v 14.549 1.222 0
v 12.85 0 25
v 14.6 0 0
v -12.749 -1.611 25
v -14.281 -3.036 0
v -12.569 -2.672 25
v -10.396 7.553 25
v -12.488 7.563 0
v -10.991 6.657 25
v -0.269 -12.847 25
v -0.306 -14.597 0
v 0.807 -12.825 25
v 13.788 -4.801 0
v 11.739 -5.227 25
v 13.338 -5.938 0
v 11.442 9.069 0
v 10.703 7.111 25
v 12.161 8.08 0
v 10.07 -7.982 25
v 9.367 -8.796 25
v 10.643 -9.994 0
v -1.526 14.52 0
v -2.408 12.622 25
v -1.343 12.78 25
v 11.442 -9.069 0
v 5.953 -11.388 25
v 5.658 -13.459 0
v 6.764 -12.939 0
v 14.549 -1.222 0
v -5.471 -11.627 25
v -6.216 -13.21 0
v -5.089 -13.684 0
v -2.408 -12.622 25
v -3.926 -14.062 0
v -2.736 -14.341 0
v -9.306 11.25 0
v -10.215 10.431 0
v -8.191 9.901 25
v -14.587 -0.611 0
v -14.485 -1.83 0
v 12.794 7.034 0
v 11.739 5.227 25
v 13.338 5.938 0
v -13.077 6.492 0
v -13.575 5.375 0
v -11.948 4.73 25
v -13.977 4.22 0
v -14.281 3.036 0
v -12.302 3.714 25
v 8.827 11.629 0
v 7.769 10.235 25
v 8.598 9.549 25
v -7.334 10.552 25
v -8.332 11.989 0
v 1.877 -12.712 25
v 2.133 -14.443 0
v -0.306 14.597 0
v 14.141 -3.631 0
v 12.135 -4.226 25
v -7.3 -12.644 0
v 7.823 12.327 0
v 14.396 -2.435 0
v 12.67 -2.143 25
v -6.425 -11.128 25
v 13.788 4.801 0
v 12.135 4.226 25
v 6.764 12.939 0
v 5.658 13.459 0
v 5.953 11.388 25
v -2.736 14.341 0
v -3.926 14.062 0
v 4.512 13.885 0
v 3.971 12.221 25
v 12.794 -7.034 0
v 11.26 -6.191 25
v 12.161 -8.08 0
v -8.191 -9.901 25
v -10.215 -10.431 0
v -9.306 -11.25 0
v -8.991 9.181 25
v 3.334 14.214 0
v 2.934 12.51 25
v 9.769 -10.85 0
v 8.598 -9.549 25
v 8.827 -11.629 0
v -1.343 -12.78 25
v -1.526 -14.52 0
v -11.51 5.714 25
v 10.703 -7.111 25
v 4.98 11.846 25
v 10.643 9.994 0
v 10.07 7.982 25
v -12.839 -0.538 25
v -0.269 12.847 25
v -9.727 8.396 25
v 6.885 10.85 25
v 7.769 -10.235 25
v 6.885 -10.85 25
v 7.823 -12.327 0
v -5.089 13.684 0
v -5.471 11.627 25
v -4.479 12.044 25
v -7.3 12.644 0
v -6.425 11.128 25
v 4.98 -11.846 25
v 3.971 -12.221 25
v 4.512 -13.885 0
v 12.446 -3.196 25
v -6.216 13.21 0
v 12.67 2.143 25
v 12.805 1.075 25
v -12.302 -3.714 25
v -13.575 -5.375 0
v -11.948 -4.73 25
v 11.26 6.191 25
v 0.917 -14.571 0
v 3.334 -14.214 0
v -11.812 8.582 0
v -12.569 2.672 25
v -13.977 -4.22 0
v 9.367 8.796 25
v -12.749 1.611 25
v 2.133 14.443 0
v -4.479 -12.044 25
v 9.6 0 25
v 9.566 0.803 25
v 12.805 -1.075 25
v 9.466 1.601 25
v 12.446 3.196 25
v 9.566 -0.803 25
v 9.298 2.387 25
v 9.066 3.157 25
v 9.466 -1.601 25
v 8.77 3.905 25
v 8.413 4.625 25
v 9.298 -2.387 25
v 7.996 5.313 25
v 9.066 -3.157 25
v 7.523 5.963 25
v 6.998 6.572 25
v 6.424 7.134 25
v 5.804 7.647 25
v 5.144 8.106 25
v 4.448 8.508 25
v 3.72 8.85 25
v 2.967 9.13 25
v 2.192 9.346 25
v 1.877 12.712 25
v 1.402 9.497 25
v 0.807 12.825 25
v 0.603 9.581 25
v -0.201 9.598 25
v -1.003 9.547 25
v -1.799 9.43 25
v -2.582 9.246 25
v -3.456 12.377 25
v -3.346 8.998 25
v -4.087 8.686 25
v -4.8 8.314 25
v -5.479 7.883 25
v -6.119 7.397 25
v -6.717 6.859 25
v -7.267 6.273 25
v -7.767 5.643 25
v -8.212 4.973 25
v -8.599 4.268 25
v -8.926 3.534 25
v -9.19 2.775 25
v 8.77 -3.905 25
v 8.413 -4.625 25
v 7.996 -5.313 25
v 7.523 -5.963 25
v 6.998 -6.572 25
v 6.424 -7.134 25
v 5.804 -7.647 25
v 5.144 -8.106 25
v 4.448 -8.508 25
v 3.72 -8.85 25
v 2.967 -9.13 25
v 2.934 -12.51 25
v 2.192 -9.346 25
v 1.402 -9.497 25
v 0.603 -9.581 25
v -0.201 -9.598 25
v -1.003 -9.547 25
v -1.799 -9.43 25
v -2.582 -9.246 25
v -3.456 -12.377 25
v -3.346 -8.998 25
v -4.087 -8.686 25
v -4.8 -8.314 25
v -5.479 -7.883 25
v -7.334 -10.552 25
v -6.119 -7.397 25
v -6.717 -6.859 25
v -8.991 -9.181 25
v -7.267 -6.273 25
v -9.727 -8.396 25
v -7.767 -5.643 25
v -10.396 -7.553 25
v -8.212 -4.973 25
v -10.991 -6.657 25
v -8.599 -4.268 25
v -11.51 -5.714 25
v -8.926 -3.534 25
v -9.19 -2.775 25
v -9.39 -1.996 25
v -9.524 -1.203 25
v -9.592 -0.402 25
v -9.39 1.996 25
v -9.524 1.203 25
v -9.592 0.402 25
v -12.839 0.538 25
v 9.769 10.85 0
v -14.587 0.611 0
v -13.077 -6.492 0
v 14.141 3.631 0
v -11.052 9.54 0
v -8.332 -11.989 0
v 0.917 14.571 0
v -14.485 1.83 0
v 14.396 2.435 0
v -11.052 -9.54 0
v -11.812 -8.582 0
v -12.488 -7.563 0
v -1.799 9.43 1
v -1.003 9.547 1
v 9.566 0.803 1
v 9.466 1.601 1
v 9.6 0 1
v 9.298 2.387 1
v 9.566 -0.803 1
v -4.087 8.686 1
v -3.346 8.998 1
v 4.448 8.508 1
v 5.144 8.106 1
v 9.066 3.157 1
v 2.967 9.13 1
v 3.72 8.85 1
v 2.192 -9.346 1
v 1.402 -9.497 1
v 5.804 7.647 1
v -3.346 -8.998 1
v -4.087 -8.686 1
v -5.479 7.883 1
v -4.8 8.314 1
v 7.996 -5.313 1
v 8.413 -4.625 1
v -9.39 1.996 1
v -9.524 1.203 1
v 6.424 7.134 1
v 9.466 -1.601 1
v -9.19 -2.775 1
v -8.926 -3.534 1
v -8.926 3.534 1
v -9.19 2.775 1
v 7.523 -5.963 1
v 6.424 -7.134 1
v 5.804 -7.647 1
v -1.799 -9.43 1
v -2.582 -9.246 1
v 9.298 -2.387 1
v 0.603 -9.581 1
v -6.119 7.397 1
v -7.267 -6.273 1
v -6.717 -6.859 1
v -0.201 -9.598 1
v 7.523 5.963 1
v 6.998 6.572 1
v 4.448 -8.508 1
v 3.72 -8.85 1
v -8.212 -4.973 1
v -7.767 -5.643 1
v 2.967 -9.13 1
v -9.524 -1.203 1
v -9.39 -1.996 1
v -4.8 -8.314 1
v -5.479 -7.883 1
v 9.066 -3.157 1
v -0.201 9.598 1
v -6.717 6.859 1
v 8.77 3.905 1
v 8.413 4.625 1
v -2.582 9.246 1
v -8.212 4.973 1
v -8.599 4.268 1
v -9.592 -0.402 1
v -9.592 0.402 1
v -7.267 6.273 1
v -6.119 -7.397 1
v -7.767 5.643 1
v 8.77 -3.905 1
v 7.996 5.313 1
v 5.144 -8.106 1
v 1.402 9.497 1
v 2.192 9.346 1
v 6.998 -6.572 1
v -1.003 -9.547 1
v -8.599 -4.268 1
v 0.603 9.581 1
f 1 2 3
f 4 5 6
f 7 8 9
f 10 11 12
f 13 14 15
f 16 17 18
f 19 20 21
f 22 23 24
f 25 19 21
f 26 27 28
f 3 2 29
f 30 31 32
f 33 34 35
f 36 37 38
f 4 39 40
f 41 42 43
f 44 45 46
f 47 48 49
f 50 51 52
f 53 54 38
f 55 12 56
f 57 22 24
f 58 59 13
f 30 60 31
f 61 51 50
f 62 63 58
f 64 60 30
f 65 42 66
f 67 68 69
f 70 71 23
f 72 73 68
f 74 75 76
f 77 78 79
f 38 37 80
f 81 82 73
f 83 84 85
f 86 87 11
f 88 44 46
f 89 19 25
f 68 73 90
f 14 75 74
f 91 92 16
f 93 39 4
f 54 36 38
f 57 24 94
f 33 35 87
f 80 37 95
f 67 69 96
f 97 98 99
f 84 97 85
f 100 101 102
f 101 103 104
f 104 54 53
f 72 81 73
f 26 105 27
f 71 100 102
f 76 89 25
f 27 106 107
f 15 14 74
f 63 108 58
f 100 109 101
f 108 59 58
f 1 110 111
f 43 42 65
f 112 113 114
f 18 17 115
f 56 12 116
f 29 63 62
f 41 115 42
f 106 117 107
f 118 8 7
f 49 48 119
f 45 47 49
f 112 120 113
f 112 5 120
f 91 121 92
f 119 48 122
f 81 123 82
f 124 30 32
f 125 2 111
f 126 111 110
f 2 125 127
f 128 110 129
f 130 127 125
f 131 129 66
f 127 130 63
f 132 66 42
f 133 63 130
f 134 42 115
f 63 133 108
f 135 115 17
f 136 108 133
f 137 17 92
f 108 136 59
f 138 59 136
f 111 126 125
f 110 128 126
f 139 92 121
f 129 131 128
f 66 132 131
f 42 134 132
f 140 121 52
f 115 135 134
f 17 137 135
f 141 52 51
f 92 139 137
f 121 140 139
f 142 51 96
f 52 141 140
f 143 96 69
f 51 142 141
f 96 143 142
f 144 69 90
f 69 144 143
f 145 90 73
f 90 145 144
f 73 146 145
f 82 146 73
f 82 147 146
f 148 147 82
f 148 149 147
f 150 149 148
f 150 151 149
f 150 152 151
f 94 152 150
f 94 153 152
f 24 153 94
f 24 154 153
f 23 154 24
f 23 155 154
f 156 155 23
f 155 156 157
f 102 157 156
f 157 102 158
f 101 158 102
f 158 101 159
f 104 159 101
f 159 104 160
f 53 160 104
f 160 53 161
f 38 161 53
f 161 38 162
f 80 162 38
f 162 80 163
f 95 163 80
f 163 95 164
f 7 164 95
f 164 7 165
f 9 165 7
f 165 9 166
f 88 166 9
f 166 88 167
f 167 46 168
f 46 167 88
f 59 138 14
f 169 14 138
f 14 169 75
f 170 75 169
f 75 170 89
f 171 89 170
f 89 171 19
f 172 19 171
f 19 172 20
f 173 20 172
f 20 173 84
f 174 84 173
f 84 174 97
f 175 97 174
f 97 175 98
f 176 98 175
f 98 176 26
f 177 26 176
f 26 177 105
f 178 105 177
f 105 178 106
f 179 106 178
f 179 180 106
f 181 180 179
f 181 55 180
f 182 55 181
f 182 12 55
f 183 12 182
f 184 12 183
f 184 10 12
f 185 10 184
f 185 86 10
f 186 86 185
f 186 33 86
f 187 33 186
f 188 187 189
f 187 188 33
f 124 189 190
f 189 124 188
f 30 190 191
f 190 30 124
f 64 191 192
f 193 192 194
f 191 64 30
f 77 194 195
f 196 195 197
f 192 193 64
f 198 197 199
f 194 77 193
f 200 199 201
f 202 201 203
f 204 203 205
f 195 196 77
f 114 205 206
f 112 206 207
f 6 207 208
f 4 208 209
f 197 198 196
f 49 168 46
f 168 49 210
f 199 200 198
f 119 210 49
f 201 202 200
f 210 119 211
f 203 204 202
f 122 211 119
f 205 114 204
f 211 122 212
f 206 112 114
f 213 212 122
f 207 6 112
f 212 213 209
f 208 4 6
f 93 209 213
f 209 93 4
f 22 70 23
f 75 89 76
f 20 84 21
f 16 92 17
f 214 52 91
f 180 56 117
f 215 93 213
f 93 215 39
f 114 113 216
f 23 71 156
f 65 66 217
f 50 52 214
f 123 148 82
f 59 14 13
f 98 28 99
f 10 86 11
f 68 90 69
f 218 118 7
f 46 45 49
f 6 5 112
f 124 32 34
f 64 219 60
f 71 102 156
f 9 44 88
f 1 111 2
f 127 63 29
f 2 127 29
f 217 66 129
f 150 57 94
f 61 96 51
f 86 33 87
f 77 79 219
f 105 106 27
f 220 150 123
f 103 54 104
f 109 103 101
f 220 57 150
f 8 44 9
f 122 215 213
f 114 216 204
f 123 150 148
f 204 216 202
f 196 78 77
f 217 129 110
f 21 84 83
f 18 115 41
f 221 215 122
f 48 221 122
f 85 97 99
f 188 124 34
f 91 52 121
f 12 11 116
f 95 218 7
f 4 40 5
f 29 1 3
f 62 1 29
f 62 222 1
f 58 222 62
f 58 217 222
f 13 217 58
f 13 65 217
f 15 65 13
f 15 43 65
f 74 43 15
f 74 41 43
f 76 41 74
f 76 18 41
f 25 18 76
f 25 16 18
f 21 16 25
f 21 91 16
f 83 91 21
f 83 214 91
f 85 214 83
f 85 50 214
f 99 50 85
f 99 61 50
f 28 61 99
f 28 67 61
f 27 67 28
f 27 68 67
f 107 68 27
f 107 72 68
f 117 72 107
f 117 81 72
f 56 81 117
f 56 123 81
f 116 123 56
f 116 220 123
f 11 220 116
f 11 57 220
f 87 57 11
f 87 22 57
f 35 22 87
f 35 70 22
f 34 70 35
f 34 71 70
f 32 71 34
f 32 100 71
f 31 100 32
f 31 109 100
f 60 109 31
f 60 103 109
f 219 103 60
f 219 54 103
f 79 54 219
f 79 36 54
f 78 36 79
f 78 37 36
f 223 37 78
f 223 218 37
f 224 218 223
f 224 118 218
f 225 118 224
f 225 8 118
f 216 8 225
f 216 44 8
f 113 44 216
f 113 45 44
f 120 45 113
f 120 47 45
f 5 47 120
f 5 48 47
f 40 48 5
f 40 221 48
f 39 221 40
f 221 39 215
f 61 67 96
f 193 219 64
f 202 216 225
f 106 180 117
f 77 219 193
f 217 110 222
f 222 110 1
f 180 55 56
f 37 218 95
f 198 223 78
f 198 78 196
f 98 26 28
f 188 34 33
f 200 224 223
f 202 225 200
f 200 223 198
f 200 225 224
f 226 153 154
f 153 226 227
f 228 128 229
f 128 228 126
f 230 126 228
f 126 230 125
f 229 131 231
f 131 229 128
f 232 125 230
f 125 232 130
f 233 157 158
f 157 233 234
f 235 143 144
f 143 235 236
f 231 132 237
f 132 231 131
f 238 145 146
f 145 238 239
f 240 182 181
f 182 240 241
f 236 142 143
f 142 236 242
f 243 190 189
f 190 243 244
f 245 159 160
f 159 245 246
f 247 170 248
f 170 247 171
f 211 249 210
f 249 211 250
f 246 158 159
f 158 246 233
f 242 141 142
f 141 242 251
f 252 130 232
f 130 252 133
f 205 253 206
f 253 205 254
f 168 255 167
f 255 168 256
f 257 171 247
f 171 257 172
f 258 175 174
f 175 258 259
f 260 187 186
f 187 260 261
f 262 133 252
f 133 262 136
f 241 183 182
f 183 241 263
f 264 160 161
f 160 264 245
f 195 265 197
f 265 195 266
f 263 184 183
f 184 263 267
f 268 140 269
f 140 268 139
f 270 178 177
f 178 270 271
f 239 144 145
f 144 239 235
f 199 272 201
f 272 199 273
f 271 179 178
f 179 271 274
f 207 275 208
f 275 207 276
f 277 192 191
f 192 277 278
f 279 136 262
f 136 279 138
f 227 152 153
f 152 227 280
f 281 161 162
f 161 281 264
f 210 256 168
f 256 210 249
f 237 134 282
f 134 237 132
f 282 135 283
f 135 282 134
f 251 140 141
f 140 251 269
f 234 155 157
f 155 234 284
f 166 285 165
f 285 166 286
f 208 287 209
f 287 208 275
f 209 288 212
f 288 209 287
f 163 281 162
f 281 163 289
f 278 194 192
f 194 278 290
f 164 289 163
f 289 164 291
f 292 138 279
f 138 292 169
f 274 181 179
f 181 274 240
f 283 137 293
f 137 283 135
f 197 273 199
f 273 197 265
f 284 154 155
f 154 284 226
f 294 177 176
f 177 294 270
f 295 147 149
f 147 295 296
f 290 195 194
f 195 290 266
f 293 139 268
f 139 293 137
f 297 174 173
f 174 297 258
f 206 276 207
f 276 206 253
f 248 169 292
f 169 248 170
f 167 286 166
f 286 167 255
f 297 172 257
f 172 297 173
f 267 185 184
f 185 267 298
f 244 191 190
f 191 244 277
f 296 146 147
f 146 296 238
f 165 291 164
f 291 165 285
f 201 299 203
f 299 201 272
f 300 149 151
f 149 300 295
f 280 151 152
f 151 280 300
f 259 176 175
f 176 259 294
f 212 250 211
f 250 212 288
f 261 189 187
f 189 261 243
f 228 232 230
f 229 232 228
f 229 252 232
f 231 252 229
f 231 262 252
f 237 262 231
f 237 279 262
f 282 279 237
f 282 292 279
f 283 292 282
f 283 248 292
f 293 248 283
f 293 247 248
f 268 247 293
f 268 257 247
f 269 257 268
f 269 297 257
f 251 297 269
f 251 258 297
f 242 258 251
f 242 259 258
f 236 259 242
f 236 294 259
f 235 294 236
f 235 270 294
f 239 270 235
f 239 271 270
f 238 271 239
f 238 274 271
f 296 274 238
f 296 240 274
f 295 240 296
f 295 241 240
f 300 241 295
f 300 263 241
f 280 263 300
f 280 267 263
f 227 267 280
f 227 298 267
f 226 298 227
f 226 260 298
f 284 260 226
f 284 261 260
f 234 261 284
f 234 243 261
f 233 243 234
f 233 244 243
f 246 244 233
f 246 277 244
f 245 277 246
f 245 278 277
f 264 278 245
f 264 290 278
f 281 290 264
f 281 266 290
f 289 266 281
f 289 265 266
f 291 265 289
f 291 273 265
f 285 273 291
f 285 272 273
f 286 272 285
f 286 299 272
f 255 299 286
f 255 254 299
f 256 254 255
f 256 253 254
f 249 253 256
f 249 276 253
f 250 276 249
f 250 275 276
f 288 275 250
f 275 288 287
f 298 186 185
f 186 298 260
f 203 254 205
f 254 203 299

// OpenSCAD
$fn=75;

// 脚の直径
diameter=19.2;

// 本体の高さ
height=25;

difference(){

	// 本体
	cylinder(h=height, d1=diameter+10, d2=diameter+6.5);

	// 空洞
	translate([0, 0, 1]){

		#cylinder(h=height, d=diameter);

	}

}
